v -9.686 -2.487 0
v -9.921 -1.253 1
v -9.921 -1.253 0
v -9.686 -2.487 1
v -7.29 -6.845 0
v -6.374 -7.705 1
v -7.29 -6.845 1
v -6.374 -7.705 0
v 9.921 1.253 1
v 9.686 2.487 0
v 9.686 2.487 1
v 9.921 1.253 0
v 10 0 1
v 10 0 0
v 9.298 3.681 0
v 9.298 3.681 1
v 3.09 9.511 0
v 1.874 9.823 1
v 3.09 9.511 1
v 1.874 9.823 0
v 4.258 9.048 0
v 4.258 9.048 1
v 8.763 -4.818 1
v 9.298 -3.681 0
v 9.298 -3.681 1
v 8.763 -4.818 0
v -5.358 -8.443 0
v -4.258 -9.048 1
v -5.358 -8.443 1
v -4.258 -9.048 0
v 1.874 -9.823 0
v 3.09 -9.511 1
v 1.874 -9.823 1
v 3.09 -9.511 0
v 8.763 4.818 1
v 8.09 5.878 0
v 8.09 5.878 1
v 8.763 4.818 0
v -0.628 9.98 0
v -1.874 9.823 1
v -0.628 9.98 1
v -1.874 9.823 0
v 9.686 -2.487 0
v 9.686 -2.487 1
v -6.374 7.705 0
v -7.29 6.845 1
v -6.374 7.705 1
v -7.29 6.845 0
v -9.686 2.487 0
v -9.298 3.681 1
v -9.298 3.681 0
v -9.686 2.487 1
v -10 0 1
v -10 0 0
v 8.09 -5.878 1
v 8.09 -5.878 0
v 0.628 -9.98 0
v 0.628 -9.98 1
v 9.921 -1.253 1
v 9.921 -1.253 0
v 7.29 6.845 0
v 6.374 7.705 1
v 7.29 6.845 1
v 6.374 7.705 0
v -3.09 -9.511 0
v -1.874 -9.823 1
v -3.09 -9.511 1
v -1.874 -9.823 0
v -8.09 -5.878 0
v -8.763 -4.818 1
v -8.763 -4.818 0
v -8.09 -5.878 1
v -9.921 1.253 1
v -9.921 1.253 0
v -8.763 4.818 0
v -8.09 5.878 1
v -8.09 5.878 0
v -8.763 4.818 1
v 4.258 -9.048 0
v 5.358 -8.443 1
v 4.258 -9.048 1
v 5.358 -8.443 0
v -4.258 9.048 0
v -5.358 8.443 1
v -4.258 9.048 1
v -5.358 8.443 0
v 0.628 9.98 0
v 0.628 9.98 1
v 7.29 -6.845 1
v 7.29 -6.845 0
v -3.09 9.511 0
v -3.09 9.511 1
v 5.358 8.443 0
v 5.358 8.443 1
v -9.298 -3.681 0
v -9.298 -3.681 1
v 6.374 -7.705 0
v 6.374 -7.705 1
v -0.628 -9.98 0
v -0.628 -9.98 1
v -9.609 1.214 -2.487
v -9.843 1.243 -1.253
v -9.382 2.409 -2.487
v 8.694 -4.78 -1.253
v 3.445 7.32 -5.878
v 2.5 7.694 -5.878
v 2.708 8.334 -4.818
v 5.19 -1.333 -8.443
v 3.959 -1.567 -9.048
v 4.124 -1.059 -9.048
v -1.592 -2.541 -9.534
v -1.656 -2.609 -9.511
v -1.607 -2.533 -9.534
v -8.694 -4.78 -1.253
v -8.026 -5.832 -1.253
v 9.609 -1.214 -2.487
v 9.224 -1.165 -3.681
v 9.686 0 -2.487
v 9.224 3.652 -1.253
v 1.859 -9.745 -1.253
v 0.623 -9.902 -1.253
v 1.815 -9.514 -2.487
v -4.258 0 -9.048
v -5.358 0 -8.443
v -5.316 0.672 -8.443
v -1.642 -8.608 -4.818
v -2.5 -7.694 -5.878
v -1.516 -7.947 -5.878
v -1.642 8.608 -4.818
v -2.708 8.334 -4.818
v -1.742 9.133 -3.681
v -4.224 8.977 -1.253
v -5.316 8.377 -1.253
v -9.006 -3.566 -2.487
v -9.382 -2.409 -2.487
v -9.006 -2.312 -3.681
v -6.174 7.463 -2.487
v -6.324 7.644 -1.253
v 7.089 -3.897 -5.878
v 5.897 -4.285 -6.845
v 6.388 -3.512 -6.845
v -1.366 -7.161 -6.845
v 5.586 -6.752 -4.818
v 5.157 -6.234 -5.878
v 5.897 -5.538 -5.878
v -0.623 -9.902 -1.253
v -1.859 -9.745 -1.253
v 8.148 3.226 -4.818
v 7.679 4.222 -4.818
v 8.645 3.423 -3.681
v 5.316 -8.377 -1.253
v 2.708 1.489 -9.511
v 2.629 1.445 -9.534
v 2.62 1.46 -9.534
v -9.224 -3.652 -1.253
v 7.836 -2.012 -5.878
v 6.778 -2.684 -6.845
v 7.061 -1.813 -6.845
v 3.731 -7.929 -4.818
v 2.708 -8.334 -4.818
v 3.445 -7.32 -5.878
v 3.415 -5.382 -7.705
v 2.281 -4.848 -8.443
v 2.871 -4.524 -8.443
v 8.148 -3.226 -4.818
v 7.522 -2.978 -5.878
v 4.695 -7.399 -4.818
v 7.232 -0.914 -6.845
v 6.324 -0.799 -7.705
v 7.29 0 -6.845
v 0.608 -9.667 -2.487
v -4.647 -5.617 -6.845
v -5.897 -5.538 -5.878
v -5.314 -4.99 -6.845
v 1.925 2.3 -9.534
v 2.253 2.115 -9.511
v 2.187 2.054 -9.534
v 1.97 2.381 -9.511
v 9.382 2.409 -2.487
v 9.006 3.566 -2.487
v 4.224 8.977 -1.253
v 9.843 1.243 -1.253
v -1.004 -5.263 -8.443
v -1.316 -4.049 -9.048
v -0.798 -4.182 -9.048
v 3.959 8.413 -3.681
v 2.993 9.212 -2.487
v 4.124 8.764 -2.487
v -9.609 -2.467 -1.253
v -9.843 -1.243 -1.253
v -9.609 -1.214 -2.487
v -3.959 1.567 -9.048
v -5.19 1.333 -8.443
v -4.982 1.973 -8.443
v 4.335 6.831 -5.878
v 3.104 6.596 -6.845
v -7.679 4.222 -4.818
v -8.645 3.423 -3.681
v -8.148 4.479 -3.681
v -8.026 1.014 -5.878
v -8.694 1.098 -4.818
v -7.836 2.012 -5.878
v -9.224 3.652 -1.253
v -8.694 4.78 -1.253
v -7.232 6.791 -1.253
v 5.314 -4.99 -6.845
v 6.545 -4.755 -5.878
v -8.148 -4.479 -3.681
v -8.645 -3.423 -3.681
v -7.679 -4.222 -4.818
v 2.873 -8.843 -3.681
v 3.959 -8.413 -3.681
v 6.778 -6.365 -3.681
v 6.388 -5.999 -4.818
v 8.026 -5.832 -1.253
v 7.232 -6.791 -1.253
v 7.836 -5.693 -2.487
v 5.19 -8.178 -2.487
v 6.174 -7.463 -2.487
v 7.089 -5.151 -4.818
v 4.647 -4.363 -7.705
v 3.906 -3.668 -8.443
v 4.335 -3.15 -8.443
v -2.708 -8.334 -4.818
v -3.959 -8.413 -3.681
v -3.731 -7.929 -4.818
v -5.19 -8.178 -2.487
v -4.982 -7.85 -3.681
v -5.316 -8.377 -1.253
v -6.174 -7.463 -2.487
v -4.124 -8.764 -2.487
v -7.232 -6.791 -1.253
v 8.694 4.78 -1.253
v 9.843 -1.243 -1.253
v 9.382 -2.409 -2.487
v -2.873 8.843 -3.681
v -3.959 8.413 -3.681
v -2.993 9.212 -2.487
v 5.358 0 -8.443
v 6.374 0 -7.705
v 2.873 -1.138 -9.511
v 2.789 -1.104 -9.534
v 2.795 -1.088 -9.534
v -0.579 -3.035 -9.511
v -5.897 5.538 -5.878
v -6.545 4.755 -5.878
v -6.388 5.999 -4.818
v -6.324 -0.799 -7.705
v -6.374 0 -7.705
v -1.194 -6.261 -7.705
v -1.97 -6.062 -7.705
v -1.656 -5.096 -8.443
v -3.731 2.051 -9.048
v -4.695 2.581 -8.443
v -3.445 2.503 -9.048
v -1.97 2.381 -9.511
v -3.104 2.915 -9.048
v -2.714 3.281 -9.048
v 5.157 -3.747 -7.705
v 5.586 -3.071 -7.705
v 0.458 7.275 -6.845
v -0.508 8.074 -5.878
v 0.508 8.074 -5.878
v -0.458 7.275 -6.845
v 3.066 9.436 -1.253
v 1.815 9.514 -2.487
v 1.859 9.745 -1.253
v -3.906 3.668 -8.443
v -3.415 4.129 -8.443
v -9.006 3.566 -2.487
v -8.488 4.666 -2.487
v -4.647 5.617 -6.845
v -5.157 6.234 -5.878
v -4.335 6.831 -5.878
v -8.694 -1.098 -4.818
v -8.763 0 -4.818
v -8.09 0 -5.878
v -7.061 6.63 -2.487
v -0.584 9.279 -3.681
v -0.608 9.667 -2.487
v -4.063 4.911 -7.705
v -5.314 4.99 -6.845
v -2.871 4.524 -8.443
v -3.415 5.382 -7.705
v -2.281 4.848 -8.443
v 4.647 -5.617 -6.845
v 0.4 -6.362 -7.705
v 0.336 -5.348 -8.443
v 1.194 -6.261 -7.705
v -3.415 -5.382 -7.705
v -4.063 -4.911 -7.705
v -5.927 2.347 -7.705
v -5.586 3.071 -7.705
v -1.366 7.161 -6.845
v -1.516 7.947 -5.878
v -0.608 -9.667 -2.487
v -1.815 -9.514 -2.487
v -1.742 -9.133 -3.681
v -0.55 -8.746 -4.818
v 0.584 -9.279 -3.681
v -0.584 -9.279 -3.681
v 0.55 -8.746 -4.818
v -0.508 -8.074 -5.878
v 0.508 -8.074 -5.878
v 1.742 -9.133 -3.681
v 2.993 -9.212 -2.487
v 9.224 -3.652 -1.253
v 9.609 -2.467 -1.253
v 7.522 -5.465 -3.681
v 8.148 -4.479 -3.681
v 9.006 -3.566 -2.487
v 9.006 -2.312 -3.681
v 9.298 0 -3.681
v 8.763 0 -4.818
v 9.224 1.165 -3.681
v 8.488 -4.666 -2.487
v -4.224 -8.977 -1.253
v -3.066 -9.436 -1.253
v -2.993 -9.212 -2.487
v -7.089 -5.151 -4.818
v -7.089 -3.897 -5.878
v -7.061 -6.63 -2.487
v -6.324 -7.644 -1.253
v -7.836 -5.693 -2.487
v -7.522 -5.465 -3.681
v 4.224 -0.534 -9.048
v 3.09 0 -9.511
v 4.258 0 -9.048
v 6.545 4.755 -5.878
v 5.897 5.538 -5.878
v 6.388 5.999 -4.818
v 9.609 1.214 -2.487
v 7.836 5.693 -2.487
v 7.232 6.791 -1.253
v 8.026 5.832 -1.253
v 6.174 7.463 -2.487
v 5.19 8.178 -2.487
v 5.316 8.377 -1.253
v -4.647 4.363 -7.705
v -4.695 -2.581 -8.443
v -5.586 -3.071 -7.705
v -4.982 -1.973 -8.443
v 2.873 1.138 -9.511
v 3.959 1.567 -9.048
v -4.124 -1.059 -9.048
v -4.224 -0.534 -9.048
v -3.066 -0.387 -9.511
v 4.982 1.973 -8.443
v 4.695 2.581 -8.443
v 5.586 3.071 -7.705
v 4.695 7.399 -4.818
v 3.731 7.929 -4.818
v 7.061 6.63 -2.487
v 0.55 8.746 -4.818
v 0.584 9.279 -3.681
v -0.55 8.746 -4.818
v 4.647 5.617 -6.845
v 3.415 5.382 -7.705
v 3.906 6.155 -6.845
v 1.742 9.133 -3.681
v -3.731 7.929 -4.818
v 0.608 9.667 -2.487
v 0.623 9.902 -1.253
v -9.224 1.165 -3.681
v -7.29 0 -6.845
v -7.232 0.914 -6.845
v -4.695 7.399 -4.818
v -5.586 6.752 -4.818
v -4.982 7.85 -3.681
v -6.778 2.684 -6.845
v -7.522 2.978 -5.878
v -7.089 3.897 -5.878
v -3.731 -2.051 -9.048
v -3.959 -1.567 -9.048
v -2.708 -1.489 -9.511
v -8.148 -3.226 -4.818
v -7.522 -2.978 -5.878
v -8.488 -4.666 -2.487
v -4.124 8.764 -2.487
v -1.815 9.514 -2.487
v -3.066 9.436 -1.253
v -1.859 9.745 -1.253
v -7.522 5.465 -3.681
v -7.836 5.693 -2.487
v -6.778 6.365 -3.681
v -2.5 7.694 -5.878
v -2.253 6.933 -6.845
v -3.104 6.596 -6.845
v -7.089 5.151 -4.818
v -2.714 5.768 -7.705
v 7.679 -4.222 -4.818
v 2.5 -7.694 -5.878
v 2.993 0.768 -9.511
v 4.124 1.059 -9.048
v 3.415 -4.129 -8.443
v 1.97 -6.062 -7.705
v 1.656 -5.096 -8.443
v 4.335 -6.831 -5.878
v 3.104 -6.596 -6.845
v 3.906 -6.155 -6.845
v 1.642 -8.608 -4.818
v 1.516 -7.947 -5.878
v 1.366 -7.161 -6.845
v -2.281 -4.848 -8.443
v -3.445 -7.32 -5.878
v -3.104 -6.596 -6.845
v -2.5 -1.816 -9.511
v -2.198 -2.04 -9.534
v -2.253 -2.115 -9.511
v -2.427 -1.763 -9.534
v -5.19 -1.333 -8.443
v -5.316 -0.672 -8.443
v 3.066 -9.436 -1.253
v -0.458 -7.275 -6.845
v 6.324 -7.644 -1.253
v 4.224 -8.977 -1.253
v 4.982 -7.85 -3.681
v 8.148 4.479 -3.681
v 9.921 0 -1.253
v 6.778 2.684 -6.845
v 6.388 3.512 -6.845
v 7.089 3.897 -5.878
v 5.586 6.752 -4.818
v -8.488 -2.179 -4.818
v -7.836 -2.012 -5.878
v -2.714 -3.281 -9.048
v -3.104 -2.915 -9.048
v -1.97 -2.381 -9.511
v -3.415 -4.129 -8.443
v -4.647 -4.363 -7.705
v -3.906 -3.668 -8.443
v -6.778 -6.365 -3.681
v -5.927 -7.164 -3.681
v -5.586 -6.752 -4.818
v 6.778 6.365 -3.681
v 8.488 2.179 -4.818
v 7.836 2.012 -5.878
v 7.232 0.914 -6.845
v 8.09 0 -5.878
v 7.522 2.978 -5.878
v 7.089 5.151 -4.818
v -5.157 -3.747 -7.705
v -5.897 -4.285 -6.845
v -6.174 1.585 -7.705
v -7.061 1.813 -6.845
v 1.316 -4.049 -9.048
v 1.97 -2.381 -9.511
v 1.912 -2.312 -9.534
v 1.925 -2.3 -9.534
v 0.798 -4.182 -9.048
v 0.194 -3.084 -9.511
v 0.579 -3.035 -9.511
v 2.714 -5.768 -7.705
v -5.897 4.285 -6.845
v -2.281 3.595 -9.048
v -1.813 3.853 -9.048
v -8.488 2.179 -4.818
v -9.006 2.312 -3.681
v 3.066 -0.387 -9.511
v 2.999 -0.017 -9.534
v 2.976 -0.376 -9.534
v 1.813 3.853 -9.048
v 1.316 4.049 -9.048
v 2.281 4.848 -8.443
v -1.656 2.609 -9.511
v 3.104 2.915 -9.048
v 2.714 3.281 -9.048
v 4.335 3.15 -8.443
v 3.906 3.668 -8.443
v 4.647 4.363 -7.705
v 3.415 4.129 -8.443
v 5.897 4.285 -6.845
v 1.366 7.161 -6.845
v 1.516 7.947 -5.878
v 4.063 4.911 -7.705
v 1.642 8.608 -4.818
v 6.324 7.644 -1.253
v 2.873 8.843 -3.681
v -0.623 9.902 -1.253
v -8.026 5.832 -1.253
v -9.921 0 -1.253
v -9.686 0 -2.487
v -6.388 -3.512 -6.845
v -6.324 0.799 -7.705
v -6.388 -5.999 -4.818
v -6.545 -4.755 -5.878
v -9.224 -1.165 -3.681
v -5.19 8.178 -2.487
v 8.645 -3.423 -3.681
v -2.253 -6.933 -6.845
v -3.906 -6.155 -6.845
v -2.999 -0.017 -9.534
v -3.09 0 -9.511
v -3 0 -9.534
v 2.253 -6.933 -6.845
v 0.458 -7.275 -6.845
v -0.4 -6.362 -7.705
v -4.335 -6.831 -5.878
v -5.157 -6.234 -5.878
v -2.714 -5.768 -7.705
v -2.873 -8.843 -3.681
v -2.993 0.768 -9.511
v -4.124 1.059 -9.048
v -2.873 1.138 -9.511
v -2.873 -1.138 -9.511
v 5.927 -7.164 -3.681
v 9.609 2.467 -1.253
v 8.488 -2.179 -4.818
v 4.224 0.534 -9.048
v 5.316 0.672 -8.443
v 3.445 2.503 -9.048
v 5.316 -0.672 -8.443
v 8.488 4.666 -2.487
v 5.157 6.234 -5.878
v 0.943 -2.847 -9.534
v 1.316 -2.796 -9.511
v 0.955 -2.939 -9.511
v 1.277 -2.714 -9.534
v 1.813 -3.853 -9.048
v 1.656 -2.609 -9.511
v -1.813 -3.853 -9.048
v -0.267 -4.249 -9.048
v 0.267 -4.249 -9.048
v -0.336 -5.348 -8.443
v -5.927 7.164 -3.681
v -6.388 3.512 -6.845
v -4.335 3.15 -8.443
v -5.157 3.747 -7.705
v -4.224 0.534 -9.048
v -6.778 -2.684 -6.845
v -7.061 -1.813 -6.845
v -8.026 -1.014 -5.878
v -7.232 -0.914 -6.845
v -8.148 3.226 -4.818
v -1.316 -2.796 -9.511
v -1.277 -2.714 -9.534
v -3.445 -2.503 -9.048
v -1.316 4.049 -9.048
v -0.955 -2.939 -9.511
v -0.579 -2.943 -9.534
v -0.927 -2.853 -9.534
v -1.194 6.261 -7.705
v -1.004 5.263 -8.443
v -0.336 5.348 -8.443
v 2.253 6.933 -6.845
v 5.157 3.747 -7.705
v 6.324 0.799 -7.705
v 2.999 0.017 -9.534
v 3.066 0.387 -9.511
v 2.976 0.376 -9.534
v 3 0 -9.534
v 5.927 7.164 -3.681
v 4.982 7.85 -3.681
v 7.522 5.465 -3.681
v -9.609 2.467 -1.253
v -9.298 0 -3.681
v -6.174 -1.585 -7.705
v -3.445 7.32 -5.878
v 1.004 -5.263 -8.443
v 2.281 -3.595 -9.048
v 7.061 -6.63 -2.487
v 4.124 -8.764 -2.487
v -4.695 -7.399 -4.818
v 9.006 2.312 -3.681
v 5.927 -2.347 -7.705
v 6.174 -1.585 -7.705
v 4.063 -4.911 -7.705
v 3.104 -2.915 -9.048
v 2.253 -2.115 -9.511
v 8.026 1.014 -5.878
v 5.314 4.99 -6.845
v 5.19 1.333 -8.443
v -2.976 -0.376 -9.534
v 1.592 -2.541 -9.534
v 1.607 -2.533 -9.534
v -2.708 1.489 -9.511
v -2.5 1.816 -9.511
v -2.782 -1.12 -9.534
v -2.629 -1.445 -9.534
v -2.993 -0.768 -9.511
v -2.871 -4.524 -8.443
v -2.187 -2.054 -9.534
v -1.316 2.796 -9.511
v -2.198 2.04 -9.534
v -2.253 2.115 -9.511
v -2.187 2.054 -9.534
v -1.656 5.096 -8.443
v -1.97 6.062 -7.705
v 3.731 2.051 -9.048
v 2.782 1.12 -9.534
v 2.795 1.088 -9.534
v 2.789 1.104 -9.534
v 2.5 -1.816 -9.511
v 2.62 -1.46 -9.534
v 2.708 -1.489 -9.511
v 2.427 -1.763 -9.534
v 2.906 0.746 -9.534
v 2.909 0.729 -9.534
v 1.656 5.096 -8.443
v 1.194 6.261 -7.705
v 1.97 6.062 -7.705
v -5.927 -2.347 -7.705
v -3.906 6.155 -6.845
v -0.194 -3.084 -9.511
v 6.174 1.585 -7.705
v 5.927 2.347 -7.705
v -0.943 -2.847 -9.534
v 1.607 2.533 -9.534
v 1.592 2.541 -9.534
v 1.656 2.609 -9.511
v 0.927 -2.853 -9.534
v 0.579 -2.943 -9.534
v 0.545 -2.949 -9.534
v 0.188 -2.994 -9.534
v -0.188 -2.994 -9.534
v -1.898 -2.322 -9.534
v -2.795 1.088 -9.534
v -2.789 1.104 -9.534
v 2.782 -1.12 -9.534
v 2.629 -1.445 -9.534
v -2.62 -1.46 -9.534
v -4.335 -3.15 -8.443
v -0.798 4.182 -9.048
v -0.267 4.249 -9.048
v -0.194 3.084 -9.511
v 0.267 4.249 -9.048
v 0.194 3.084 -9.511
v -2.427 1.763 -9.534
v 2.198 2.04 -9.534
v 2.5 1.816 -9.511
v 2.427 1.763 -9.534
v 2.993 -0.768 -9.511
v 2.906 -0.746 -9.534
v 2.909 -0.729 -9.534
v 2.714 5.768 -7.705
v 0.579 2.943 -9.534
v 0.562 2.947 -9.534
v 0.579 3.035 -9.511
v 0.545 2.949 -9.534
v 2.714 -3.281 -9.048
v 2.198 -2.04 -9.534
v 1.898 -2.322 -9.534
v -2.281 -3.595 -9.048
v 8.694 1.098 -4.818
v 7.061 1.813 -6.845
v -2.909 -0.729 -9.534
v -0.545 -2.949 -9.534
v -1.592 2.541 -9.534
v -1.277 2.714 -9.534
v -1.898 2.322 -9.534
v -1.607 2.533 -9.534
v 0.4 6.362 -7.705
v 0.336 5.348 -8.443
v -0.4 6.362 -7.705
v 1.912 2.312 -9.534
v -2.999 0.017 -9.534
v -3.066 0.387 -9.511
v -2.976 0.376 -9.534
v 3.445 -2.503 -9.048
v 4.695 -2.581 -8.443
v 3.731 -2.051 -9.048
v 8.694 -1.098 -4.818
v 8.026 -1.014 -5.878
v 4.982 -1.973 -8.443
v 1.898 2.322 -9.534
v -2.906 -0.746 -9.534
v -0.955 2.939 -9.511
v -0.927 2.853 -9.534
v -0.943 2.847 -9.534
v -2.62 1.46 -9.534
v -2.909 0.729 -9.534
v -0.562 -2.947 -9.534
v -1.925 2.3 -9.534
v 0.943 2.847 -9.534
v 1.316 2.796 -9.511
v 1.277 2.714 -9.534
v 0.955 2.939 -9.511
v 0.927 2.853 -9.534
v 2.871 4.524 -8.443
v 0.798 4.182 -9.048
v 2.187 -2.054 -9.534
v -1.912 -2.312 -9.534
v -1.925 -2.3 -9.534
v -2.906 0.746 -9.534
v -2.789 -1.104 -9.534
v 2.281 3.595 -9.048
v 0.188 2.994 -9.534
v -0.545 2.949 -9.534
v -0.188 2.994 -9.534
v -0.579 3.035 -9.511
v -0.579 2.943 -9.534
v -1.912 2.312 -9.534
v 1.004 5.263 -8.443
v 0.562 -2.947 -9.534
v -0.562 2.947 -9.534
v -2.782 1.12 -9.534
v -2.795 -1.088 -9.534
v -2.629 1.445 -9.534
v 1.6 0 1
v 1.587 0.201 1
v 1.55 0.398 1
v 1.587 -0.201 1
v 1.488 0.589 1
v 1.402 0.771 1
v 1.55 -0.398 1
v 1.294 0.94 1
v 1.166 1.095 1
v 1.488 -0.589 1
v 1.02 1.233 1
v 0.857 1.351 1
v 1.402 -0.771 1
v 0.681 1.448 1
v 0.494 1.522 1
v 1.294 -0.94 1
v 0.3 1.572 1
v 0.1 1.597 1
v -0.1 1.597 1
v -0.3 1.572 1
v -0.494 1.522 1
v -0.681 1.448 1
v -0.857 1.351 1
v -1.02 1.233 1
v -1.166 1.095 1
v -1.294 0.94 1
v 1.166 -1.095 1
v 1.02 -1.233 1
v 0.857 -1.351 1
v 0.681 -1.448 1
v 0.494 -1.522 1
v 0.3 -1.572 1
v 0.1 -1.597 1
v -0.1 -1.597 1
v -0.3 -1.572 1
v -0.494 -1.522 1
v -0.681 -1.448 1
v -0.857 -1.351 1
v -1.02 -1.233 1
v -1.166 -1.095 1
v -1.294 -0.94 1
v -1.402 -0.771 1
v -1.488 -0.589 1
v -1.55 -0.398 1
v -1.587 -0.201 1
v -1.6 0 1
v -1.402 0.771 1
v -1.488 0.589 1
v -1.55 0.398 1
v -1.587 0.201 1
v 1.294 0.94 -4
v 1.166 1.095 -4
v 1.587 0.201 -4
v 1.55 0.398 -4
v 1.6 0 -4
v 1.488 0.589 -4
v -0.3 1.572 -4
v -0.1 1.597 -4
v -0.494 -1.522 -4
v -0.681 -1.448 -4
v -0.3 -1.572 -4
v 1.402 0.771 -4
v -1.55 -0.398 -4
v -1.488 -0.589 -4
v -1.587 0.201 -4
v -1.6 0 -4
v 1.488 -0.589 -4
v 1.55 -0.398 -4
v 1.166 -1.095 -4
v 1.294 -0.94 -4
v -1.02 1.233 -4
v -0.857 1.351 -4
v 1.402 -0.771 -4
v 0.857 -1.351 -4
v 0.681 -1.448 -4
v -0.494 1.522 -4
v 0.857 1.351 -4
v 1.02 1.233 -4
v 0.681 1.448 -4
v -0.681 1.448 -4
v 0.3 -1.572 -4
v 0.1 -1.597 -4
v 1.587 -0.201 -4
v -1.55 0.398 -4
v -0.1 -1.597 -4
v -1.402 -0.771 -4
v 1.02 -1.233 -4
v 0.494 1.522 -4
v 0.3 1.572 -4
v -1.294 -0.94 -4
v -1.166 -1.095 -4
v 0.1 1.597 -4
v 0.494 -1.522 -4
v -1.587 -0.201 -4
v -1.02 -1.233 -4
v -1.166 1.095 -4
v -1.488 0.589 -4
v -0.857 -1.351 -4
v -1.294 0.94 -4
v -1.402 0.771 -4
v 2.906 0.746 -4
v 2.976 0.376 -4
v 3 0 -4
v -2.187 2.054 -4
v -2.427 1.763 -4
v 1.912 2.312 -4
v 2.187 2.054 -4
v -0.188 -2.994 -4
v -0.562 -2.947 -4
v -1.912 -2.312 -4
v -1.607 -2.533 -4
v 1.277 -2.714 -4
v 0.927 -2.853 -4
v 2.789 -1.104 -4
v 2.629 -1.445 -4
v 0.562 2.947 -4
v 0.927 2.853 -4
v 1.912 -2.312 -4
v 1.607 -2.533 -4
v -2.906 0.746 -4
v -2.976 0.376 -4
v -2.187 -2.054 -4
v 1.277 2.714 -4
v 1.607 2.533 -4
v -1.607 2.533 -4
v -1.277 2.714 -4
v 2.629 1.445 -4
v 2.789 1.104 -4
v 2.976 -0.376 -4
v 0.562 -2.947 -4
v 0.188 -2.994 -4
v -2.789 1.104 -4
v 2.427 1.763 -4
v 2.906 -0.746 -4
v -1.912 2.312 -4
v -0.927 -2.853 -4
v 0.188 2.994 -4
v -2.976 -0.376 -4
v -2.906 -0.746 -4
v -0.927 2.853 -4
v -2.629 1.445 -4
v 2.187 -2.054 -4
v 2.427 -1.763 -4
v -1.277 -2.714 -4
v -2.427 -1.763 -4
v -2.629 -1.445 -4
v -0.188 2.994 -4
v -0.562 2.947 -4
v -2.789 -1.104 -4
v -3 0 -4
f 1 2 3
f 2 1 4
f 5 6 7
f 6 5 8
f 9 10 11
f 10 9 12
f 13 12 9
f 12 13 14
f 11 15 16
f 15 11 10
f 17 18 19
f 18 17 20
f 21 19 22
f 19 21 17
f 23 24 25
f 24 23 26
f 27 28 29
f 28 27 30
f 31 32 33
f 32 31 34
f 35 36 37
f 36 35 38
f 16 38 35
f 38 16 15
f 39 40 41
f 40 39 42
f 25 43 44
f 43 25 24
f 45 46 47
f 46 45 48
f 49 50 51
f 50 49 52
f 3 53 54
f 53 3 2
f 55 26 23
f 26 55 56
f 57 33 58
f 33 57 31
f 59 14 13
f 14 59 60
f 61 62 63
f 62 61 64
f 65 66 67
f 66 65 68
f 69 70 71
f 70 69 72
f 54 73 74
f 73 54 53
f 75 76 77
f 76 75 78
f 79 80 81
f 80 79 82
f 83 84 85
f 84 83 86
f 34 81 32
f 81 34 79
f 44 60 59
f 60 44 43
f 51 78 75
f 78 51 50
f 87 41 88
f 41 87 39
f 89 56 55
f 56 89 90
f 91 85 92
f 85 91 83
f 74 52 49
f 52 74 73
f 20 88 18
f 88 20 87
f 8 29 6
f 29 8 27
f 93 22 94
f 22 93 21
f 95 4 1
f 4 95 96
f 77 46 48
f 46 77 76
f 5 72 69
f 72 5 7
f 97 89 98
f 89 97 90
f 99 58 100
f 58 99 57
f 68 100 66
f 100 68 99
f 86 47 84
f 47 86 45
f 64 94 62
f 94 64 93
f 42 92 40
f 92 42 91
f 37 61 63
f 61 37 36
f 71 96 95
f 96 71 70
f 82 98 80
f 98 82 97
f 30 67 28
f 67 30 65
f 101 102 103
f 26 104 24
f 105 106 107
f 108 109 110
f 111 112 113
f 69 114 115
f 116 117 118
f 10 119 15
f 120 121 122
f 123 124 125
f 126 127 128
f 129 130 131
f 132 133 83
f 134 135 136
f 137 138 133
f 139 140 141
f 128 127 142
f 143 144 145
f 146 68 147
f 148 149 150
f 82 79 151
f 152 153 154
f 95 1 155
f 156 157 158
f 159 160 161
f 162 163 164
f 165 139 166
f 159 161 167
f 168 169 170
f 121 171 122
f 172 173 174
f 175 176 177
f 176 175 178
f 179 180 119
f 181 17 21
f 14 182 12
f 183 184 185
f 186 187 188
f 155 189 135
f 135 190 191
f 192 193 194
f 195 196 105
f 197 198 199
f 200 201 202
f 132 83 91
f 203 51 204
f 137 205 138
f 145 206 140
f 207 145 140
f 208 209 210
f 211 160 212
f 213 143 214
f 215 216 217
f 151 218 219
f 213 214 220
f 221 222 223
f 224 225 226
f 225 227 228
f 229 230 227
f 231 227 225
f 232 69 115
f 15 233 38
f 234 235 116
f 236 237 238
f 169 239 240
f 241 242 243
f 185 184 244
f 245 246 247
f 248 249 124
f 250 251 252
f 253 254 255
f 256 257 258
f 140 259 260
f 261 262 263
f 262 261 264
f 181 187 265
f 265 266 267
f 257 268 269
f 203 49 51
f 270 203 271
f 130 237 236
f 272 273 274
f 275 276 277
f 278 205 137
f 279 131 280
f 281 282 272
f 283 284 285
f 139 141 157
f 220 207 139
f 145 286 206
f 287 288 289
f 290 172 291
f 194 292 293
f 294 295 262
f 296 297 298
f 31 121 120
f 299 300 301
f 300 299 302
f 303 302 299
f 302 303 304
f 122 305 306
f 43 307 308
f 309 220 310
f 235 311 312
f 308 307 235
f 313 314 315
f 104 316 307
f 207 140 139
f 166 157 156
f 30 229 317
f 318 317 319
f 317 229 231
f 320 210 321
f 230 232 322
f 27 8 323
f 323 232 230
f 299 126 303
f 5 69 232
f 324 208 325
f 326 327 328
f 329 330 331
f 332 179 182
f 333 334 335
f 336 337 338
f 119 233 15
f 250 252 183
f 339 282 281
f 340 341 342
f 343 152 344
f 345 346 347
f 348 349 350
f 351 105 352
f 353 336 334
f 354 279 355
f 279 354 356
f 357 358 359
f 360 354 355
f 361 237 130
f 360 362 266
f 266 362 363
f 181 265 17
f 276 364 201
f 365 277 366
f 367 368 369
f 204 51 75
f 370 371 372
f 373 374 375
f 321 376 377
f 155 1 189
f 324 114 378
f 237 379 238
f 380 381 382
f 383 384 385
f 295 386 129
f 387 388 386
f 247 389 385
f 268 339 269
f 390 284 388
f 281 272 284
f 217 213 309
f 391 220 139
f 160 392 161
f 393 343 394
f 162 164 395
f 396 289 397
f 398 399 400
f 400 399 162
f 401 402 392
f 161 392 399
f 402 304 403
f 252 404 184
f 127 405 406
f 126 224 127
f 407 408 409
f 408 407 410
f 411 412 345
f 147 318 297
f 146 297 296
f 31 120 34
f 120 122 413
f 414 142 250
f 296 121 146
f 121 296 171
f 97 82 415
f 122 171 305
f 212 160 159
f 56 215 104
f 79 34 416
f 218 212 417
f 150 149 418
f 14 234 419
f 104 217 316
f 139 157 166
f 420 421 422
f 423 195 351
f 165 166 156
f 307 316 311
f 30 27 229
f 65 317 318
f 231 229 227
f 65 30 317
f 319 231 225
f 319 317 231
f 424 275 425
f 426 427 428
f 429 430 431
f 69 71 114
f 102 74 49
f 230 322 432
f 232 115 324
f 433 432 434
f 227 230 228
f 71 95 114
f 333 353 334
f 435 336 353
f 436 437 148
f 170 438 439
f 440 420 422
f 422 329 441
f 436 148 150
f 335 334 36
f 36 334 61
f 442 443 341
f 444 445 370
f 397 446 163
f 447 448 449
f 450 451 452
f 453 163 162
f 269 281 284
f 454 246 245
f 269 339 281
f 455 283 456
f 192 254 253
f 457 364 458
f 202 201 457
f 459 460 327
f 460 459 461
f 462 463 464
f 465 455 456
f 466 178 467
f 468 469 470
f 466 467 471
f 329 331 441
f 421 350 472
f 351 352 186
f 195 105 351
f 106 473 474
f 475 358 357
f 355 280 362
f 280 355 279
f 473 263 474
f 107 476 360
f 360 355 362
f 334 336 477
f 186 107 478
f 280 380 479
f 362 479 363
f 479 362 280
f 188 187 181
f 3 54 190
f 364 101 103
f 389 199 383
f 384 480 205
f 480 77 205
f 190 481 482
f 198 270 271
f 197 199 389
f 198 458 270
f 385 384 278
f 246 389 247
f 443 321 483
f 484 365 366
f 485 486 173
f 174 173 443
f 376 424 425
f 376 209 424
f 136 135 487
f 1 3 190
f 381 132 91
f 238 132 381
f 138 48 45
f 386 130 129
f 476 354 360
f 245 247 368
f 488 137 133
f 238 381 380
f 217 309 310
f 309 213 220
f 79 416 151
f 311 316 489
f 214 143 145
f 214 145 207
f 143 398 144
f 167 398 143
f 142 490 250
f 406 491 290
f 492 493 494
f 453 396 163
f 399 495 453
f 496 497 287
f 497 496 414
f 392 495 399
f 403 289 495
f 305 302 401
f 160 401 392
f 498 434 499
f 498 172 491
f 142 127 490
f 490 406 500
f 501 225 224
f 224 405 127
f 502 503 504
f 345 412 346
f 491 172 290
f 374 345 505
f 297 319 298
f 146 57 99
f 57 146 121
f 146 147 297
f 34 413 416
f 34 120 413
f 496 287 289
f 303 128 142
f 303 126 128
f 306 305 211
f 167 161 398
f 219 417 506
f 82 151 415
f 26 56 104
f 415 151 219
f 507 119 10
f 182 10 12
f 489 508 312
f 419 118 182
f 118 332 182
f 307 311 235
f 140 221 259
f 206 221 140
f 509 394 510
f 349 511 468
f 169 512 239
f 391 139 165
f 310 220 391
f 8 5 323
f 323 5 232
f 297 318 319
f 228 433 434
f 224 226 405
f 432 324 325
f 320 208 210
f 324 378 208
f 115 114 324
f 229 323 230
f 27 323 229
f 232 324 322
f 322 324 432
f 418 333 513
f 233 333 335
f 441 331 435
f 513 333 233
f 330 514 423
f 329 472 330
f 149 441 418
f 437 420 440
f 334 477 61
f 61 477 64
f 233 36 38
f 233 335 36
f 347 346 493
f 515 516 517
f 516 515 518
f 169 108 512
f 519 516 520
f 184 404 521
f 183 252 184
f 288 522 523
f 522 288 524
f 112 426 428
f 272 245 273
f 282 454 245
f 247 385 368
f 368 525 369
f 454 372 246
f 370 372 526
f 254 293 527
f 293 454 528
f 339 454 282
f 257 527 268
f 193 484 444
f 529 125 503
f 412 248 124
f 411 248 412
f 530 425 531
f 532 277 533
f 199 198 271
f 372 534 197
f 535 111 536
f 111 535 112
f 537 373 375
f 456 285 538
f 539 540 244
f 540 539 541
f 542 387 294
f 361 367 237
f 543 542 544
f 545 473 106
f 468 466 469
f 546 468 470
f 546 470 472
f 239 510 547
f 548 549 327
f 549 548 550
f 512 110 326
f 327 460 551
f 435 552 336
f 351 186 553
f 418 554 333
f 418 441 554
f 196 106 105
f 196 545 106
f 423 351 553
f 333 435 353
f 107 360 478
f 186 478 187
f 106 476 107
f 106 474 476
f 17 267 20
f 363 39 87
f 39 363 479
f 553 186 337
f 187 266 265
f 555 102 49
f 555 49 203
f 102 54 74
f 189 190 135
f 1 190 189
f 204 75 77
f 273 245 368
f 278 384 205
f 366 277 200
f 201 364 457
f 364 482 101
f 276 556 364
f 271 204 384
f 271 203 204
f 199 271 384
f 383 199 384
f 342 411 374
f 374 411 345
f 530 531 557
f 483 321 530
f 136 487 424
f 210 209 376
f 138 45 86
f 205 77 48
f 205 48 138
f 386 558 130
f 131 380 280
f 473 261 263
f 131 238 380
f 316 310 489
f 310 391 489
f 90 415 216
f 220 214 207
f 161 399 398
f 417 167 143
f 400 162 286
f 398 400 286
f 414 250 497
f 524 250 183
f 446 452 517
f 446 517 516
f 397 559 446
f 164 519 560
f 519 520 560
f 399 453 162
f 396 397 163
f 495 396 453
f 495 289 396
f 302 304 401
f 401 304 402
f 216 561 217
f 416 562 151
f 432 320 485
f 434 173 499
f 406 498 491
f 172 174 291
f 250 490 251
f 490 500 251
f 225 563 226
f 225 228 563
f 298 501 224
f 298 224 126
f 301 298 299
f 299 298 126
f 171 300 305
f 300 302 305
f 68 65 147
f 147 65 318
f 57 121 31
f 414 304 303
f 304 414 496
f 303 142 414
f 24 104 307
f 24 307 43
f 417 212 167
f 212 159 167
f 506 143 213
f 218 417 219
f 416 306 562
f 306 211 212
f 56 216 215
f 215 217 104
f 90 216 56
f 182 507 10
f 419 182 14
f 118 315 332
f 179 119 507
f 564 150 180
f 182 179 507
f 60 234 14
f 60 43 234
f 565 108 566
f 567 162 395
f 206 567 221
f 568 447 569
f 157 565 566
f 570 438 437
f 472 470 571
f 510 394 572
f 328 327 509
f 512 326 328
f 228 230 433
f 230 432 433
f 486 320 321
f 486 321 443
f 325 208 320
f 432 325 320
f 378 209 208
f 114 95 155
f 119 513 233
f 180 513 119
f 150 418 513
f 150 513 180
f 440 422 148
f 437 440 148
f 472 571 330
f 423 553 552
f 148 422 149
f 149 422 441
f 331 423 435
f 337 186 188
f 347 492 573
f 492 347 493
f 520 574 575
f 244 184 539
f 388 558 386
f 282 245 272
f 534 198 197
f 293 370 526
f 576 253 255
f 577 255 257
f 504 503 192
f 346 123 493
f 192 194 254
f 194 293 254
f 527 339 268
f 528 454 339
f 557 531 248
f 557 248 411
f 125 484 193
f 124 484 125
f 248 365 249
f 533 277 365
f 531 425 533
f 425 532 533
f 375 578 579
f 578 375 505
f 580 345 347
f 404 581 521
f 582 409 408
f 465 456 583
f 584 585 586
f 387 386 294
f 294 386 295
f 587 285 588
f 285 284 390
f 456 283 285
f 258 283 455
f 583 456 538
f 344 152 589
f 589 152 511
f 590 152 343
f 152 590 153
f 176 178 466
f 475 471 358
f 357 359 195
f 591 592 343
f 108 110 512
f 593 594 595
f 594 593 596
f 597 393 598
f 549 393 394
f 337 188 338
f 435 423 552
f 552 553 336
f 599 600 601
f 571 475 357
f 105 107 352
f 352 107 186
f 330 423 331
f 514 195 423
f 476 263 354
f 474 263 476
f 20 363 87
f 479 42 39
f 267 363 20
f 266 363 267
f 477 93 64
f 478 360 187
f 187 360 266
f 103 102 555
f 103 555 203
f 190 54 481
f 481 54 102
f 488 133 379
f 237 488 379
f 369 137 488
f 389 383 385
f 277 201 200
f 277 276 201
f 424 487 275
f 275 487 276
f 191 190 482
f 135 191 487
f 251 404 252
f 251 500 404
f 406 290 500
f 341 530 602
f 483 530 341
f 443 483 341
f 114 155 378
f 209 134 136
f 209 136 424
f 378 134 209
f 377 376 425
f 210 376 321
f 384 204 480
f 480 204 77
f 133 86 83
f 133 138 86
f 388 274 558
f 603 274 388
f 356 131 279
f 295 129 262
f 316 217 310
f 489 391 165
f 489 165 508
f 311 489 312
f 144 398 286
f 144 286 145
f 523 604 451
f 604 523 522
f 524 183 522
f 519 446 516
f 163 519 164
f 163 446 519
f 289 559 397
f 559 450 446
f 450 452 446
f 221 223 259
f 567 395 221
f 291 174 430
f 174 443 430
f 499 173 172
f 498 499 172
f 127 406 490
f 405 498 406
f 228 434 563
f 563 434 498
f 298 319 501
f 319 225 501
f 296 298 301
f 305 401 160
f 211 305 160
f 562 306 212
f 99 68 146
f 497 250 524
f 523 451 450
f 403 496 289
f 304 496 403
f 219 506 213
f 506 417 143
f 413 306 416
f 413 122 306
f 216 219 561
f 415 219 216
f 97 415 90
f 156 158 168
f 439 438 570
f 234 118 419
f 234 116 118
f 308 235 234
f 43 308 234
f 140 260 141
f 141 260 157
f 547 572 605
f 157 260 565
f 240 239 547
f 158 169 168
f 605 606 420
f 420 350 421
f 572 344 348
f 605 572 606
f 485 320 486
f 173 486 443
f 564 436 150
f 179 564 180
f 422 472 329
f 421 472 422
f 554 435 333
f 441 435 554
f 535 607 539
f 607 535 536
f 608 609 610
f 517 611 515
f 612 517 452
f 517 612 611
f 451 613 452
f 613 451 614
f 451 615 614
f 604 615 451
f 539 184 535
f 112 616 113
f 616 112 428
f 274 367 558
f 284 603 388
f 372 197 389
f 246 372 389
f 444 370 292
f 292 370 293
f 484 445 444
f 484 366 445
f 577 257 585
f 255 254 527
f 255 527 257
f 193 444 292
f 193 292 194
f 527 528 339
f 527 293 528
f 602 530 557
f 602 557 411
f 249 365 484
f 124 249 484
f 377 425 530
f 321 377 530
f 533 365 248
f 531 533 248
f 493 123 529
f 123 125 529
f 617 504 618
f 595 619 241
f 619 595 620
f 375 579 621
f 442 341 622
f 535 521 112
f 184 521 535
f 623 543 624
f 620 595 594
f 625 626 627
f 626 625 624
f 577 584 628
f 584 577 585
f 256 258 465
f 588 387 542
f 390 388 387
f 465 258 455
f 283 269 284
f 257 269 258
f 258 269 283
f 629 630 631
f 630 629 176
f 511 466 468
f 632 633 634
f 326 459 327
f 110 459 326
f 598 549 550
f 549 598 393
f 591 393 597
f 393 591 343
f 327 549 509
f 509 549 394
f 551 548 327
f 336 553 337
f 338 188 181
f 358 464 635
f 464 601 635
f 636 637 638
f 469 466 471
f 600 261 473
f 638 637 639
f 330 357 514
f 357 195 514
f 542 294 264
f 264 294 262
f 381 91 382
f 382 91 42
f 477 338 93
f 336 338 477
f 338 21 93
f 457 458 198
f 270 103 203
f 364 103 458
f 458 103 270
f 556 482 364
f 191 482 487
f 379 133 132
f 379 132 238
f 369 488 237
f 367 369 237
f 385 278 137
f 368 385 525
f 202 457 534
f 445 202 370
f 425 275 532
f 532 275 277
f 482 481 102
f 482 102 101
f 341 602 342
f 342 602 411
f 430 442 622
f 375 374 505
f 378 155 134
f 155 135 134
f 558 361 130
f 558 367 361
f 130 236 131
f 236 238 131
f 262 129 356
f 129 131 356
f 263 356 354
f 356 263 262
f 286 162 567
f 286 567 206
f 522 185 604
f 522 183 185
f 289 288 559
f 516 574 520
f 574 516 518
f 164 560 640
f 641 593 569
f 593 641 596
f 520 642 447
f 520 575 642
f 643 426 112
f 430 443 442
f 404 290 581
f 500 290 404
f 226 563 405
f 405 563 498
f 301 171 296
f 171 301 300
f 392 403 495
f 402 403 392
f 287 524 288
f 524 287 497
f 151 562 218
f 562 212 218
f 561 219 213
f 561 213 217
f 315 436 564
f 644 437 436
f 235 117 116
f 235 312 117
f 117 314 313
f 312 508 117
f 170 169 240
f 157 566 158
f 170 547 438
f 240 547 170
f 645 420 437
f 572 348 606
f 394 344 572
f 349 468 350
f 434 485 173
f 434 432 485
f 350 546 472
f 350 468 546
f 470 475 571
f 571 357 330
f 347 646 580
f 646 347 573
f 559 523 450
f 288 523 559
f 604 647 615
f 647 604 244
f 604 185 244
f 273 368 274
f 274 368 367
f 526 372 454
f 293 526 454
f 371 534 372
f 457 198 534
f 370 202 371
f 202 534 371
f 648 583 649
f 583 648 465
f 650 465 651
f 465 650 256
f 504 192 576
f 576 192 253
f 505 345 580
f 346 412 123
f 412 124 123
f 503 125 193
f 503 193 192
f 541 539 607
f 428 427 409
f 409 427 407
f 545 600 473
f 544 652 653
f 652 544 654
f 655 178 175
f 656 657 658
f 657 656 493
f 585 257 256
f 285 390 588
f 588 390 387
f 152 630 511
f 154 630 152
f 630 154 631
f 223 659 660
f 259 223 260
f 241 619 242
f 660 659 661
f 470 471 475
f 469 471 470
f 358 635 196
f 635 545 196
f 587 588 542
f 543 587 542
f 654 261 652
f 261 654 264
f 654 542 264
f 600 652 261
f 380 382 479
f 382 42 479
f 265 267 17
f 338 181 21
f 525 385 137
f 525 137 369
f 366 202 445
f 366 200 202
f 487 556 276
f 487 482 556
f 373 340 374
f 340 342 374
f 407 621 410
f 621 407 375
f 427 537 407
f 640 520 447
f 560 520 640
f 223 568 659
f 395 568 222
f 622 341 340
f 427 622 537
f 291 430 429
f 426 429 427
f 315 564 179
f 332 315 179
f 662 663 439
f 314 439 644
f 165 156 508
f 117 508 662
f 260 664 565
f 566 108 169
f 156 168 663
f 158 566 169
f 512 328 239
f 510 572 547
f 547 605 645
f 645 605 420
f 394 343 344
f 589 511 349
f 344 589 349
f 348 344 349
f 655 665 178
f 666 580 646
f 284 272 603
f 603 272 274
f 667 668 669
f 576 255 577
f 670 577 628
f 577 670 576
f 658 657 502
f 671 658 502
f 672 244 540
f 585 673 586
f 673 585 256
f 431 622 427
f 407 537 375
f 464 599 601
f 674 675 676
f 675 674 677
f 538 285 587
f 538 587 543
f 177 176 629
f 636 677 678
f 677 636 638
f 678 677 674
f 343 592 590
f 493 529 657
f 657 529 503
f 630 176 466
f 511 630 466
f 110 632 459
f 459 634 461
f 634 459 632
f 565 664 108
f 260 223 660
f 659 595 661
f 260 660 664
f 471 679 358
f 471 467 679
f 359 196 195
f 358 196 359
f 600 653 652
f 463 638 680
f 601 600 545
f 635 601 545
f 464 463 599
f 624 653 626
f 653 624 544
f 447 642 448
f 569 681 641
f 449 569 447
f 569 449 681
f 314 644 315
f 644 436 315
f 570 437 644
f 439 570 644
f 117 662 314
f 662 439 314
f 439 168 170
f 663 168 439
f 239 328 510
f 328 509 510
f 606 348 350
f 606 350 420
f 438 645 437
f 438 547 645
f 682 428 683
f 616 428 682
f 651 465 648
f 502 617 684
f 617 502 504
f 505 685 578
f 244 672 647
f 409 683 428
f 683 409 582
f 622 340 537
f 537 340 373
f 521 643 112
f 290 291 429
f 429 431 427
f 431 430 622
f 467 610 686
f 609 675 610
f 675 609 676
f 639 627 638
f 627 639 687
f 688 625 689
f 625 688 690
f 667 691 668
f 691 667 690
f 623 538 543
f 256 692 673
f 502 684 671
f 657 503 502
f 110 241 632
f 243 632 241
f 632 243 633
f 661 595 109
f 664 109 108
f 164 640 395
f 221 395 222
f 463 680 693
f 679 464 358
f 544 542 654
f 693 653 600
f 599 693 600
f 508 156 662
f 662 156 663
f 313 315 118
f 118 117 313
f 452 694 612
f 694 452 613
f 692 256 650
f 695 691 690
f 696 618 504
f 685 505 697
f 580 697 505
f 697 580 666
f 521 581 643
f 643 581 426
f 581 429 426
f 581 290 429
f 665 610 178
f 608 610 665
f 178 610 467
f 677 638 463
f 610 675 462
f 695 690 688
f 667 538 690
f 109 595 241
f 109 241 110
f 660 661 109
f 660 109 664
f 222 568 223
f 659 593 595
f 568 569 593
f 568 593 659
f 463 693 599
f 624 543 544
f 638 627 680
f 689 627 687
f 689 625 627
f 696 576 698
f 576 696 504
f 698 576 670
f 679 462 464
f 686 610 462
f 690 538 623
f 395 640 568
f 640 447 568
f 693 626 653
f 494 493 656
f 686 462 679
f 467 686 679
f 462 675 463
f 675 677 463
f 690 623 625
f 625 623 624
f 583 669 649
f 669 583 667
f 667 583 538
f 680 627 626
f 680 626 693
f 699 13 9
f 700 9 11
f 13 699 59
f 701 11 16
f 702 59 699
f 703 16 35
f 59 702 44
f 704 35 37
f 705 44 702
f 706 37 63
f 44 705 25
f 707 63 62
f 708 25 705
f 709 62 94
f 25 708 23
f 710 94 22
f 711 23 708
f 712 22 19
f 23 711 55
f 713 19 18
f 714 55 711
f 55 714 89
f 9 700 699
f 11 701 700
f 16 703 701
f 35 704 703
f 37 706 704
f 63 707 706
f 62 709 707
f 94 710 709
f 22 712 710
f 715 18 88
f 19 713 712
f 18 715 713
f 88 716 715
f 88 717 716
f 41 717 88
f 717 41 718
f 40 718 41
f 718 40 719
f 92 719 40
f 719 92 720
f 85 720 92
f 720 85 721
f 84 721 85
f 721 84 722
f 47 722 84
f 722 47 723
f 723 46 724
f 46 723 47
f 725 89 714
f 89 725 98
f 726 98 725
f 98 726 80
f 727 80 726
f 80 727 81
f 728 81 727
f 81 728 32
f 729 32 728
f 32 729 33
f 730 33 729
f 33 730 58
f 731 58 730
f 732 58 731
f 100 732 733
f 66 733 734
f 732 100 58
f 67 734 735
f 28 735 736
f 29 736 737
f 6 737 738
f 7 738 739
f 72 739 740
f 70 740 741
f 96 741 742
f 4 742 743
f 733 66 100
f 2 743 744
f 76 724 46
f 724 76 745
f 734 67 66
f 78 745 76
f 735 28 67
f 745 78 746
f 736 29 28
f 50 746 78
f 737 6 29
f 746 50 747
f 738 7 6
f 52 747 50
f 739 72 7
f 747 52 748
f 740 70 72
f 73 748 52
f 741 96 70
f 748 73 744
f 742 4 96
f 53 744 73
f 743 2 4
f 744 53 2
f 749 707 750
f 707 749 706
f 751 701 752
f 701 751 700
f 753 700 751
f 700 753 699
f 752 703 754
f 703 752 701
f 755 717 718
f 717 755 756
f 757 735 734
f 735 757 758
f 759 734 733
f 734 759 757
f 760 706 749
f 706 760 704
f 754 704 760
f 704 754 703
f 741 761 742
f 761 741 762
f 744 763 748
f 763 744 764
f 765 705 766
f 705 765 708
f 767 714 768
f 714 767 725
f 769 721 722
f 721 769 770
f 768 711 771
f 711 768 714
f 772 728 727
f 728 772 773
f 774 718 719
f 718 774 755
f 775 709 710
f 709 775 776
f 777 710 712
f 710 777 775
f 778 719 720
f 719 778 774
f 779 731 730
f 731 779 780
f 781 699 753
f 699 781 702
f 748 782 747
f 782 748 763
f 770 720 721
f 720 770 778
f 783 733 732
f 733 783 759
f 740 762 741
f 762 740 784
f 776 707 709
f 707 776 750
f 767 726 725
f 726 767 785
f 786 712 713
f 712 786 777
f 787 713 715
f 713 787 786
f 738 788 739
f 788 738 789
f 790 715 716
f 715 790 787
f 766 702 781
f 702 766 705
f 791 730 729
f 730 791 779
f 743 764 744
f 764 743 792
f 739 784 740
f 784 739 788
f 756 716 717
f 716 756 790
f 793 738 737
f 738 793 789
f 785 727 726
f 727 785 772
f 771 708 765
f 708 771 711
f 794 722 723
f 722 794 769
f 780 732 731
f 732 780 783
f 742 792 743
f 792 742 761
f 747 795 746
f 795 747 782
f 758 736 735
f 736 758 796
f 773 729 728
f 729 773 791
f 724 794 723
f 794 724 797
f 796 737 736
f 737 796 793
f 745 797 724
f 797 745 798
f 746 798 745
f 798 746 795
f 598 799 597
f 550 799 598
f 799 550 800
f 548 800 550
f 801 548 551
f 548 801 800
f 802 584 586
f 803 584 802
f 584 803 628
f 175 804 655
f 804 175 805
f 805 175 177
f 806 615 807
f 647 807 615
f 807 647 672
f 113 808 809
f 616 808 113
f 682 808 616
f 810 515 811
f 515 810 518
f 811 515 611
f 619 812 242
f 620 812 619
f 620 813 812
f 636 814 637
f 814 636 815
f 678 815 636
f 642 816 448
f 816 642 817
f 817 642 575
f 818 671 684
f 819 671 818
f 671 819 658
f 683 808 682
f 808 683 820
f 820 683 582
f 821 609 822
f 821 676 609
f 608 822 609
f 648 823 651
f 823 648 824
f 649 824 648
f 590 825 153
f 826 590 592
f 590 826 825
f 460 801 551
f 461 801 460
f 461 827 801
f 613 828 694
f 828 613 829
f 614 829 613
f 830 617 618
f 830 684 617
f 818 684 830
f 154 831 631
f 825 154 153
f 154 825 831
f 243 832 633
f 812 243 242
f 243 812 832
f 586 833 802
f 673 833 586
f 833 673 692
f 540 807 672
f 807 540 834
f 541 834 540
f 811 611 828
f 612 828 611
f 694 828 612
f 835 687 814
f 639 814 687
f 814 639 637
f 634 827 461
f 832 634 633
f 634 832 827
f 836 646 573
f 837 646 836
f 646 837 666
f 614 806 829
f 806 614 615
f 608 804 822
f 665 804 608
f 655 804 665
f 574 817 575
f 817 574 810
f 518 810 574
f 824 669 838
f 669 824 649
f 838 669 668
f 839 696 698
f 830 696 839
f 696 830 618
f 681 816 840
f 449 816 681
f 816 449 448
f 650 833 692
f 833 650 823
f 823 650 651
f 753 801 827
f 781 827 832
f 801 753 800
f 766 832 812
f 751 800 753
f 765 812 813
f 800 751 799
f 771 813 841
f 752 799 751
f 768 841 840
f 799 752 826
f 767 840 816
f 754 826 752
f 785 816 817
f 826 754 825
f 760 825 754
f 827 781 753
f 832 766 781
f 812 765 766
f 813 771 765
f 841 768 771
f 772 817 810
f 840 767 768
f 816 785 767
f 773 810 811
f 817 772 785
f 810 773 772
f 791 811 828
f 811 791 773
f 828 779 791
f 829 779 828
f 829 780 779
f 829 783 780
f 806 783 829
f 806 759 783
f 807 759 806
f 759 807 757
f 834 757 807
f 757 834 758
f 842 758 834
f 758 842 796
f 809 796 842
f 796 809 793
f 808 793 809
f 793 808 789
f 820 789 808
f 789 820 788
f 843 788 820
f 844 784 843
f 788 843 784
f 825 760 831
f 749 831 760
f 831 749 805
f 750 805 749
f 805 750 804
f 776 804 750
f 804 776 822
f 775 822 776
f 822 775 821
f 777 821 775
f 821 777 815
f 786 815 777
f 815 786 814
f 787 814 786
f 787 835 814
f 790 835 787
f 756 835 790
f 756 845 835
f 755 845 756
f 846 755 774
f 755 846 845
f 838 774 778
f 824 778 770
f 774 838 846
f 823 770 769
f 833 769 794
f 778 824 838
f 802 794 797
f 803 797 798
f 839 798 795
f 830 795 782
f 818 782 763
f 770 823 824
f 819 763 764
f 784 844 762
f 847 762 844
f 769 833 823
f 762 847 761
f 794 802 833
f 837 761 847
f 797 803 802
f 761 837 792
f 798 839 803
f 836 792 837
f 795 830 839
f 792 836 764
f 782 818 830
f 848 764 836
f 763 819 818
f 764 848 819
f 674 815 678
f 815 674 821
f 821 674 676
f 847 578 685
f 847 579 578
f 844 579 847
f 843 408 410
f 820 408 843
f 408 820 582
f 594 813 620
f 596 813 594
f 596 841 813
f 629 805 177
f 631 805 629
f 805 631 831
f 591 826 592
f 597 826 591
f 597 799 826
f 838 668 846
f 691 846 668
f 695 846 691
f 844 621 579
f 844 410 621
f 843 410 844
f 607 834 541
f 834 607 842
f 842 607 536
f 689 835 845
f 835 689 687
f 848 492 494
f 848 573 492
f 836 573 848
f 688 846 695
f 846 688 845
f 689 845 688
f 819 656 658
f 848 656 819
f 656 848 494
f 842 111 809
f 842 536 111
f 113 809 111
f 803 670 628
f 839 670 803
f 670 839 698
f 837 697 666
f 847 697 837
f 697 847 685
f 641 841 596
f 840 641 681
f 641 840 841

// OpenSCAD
// A leg for Rebelix printer
// Printe from a flexible material.
// Fiberology FiberFlex 40D is a good choice.
// Flexifill 98 might do too.
// (C) 2024 Lubomir Rintel

$fn=50;

difference() {
    
    union() {
        cylinder(20/2,20/2,20/2);
        sphere(20/2);
    }
    
    translate([-50,-50,0+1])
        cube([100,100,100]);
        
    translate([0,0,-50])
        cylinder(100,3.2/2,3.2/2);
    
    translate([0,0,-100-4])
        cylinder(100,6/2,6/2);
    
}
